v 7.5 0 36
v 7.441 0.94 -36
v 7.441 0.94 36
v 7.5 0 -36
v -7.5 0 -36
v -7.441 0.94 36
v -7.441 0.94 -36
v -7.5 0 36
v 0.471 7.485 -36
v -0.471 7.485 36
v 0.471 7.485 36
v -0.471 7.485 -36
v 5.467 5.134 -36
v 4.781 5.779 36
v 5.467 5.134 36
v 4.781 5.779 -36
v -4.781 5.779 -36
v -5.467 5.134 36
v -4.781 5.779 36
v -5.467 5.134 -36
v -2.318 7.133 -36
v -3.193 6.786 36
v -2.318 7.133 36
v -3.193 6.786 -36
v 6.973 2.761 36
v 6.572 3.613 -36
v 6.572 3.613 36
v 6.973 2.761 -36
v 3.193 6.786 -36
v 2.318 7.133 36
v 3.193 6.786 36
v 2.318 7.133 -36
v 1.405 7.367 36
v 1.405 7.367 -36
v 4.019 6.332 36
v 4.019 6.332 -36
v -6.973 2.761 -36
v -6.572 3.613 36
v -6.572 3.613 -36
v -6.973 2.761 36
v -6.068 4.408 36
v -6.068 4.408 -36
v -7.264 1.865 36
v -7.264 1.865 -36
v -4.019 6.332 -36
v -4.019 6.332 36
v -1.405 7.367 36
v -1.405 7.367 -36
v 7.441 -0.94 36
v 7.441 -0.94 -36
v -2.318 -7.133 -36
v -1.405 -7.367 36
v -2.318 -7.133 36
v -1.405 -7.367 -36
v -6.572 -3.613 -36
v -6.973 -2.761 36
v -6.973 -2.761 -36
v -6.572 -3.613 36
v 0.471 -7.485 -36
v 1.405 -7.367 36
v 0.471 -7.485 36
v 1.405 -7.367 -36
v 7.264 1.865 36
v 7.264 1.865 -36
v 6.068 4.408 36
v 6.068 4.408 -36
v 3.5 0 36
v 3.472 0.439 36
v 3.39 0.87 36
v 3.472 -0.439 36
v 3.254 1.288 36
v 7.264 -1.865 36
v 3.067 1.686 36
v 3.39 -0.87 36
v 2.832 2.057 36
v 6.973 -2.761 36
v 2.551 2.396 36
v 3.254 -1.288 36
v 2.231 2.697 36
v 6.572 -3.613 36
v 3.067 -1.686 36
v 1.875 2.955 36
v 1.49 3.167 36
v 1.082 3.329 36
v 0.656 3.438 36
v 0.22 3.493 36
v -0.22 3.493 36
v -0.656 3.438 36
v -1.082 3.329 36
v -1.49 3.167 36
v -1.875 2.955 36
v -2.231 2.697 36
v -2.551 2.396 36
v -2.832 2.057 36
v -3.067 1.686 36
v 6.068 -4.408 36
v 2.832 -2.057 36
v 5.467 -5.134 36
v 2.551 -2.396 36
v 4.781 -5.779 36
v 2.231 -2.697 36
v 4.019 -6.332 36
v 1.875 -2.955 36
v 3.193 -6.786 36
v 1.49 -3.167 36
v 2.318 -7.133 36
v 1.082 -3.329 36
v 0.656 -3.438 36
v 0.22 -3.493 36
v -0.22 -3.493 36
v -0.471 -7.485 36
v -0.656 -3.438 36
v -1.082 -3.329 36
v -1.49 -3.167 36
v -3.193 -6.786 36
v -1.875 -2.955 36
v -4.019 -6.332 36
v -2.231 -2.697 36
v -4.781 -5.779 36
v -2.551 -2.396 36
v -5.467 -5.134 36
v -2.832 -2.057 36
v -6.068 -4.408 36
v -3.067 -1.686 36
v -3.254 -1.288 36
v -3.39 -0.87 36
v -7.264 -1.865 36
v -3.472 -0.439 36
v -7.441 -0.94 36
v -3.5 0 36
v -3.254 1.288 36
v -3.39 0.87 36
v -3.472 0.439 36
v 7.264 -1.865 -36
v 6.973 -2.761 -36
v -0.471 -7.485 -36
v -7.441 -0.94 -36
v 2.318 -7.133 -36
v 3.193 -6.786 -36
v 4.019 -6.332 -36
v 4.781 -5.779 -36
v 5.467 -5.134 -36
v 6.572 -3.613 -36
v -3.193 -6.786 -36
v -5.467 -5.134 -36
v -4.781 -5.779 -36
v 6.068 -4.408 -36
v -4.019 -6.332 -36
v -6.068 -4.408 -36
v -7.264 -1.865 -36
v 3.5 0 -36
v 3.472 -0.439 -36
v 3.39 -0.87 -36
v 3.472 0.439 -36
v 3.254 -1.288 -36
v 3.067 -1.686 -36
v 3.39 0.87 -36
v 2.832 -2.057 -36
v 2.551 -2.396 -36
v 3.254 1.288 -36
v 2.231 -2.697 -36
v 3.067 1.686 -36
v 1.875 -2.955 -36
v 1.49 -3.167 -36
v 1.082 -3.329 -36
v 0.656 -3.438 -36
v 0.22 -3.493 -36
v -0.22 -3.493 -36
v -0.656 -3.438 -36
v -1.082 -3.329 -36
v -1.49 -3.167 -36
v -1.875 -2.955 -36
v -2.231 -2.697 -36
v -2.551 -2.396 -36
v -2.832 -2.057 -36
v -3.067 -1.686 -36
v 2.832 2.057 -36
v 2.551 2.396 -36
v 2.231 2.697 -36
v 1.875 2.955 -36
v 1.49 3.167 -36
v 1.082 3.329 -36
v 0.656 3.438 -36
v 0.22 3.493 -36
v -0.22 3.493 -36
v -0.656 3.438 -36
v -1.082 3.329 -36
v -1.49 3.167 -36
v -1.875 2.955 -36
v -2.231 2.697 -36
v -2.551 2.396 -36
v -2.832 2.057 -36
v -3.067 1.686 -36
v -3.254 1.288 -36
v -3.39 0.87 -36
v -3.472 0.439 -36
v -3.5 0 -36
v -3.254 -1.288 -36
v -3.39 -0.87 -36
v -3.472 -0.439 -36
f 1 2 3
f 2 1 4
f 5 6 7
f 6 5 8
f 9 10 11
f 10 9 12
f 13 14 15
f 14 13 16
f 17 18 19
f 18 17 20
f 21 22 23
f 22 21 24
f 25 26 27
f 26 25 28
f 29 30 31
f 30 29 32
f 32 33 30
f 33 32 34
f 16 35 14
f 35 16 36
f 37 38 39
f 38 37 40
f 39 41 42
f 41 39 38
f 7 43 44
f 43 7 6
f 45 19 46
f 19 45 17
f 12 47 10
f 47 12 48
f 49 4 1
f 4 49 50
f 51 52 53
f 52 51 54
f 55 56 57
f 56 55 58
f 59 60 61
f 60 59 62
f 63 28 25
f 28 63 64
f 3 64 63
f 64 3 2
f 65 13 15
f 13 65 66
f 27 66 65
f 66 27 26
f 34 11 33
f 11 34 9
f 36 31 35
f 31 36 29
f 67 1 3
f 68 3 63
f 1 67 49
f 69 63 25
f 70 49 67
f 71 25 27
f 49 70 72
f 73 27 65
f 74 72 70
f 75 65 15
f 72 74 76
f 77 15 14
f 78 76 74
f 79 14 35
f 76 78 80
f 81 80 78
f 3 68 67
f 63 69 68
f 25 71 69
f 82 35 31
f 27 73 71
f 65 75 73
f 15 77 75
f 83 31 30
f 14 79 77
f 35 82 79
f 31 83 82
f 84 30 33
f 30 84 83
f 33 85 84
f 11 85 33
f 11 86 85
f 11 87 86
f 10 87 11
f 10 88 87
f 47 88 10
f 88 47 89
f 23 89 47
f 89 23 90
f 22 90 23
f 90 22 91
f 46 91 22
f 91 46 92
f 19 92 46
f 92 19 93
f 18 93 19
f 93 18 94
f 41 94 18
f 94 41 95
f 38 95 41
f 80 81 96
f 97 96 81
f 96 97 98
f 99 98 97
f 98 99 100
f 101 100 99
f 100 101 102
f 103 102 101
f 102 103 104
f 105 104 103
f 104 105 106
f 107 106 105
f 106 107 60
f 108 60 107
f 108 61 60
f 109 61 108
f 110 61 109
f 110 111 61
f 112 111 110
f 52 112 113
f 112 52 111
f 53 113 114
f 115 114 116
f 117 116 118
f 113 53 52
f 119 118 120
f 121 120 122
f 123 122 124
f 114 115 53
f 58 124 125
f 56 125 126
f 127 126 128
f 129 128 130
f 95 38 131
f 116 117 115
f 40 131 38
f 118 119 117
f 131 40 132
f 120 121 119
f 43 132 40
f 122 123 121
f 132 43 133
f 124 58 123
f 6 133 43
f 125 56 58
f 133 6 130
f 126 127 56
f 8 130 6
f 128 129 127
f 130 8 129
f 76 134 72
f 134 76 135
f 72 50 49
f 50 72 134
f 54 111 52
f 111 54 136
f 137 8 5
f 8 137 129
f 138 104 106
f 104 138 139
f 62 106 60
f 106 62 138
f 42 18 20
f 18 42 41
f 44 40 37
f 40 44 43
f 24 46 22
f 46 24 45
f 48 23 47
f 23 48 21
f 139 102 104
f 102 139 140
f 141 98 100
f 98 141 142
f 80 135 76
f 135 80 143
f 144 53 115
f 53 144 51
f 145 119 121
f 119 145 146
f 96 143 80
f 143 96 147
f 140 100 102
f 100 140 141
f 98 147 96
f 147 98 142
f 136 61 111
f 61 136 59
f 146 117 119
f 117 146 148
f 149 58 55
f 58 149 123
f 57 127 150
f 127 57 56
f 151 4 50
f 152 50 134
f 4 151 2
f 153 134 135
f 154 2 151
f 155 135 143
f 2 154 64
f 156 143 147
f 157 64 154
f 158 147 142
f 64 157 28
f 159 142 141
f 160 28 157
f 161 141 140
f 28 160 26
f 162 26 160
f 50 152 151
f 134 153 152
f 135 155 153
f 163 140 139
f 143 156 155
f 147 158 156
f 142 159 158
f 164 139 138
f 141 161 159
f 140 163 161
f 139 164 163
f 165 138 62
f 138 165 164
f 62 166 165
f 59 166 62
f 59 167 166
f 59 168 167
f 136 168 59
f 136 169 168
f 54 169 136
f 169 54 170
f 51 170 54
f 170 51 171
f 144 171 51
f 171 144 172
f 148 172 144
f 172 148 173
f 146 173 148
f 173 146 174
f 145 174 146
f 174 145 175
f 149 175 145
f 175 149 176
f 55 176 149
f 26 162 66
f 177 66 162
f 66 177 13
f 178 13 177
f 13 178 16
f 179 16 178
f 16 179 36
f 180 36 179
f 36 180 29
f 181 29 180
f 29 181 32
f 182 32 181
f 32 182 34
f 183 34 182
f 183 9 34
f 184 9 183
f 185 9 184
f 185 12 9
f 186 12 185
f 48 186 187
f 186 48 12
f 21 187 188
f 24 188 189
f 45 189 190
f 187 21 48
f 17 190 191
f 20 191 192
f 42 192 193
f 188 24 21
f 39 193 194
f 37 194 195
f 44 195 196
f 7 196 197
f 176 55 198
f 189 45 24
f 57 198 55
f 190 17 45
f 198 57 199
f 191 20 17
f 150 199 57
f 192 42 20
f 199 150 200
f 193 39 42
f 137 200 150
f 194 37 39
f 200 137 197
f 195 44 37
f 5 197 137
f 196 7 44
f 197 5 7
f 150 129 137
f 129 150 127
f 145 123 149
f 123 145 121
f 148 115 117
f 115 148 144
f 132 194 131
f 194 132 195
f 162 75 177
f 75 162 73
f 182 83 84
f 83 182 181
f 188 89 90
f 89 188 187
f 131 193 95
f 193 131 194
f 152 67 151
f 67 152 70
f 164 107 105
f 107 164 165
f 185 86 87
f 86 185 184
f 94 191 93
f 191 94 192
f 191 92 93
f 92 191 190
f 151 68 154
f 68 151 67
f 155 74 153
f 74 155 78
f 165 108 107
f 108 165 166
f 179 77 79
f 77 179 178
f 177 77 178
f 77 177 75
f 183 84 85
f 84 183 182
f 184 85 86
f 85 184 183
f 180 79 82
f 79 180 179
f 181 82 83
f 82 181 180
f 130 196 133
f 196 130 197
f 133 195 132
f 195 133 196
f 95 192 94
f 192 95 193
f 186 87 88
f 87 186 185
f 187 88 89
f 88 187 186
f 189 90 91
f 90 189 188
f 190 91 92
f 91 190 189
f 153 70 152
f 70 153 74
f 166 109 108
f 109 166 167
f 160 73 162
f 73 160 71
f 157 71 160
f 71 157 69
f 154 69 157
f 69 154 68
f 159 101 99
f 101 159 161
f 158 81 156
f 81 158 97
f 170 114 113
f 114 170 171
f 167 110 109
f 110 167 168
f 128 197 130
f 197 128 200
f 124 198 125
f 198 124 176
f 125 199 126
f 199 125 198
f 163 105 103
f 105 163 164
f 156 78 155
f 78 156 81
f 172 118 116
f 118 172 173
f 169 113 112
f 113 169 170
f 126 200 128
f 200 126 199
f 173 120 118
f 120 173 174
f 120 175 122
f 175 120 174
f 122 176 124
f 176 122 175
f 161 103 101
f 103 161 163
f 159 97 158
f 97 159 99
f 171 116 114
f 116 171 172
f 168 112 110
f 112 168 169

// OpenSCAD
$fn = 50;


difference() {
	union() {
		translate(v = [0, 0, -36.0000000000]) {
			cylinder(h = 72, r = 7.5000000000);
		}
	}
	union() {
		translate(v = [0, 0, -100.0000000000]) {
			cylinder(h = 200, r = 3.5000000000);
		}
	}
}
